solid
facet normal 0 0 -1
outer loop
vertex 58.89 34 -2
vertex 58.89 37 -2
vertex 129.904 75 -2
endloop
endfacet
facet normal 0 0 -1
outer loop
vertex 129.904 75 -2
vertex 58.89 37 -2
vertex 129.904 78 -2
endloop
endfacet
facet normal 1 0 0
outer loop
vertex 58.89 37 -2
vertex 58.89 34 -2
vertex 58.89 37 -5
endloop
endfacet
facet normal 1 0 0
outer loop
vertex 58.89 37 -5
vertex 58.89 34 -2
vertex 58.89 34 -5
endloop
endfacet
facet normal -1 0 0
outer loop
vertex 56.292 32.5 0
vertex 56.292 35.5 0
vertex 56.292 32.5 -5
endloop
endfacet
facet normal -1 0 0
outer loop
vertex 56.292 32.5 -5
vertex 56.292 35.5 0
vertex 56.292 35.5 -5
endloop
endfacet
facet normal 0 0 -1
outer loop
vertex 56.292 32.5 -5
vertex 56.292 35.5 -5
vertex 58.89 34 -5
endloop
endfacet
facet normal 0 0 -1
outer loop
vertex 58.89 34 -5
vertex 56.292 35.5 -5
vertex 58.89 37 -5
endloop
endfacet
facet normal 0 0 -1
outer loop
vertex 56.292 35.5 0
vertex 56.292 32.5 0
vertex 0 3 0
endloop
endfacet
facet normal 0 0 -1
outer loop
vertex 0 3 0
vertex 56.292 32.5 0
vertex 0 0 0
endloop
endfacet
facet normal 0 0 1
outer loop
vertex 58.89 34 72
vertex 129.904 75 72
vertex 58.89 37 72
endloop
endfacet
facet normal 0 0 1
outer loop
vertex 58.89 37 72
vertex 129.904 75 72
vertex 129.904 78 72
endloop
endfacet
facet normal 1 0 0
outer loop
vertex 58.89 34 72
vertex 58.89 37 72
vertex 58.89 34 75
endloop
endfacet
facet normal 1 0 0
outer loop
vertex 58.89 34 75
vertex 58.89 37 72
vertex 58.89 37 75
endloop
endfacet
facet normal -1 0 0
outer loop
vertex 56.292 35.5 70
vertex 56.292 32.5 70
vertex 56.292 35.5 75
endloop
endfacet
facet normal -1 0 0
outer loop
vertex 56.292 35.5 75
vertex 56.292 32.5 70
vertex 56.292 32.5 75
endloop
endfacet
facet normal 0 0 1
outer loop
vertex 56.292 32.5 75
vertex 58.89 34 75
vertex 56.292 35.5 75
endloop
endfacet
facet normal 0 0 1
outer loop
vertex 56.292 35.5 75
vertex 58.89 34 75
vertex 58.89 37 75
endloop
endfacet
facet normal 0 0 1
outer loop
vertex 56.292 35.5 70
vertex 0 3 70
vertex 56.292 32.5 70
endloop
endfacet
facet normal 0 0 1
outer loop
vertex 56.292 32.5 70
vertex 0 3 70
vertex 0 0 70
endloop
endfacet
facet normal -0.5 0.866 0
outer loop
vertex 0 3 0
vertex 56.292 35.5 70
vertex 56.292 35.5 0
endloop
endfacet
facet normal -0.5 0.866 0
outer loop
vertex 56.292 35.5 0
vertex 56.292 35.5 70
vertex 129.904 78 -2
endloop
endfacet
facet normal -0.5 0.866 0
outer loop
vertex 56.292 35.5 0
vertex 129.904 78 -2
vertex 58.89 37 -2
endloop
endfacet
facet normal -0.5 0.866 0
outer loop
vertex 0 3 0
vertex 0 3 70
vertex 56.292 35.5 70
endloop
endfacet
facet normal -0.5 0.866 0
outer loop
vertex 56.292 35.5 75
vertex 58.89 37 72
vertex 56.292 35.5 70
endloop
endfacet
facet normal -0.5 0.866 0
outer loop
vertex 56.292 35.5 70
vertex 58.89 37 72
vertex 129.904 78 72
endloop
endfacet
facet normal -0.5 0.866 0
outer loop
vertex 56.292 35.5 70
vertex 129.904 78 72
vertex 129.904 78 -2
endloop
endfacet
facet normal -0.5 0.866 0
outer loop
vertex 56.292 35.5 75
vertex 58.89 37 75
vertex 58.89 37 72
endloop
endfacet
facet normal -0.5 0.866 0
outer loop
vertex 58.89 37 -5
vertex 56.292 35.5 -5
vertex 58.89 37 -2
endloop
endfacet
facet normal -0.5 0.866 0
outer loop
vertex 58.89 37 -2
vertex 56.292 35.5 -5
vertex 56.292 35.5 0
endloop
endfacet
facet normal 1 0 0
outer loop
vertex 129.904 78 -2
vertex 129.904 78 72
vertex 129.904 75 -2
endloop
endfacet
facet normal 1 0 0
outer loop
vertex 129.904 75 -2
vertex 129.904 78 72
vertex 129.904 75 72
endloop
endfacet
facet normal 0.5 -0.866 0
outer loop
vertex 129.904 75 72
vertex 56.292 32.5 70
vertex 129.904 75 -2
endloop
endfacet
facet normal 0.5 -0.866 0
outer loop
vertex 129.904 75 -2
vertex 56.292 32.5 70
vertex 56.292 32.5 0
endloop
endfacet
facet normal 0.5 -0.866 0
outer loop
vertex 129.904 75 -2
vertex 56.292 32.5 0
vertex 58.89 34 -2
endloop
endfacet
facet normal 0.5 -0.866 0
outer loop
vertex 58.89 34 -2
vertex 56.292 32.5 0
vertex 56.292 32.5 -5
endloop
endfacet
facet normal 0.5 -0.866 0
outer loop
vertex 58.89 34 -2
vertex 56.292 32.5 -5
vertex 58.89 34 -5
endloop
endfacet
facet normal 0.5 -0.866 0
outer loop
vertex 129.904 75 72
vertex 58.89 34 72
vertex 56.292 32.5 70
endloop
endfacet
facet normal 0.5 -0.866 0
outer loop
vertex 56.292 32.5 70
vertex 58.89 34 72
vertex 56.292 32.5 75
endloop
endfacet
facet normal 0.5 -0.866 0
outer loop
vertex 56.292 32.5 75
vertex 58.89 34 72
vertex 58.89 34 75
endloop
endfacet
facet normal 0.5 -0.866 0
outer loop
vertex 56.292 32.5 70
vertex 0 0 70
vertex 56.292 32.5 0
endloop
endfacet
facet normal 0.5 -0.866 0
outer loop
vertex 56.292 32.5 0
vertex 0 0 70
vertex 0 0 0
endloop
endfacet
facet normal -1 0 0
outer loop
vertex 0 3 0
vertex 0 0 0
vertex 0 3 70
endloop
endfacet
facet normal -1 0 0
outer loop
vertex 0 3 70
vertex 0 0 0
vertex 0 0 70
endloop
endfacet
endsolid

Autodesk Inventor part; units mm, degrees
ref_plane "YZ Plane" through (0, 0, 0) normal (1, 0, 0) x (0, 1, 0)
ref_plane "XZ Plane" through (0, 0, 0) normal (0, 1, 0) x (-1, 0, 0)
ref_plane "XY Plane" through (0, 0, 0) normal (0, 0, 1) x (1, 0, 0)
sketch "Sketch6" plane through (0, 0, 0) normal (0, 0, 1) x (1, 0, 0)
  line L0 (0, 0) -> (0, 3)
  line L1 (0, 3) -> (129.9038, 78)
  line L2 (129.9038, 78) -> (129.9038, 75)
  line L3 (129.9038, 75) -> (0, 0)
  dimension "d18" = 3
  dimension "d19" = 150
  dimension "d20" = 120
  dimension "d21" = 3
extrude "Extrusion6" add sketch "Sketch6" along normal blind 70
sketch "Sketch8" plane through (0, 0, 70) normal (0, 0, 1) x (1, 0, 0)
  line L0 (56.2917, 35.5) -> (56.2917, 32.5) projected
  line L1 (129.9038, 78) -> (0, 3) projected
  line L2 (56.2917, 32.5) -> (58.8897, 34)
  line L3 (129.9038, 75) -> (0, 0) projected
  line L4 (58.8897, 34) -> (58.8897, 37)
  line L5 (0, 3) -> (129.9038, 78) projected
  line L6 (56.2917, 35.5) -> (58.8897, 37)
  line L7 (56.2917, 35.5) -> (56.2917, 32.5)
  dimension "d27" = 3
extrude "Extrusion8" add sketch "Sketch8" along normal blind 5
sketch "Sketch9" plane through (0, 0, 70) normal (0, 0, 1) x (1, 0, 0)
  line L0 (58.8897, 37) -> (58.8897, 34) projected
  line L1 (58.8897, 34) -> (129.9038, 75) projected
  line L2 (129.9038, 75) -> (129.9038, 78) projected
  line L3 (129.9038, 78) -> (58.8897, 37) projected
  point P0 (0, 0)
extrude "Extrusion9" add sketch "Sketch9" along normal blind 2
sketch "Sketch10" plane through (0, 0, 0) normal (0, 0, -1) x (-1, 0, 0)
  line L0 (0, 3) -> (-129.9038, 78) projected
  line L1 (-129.9038, 75) -> (0, 0) projected
  line L2 (0, 3) -> (-56.2917, 35.5)
  line L3 (-56.2917, 35.5) -> (-58.8897, 37)
  line L4 (-58.8897, 37) -> (-58.8897, 34)
  line L5 (0, 0) -> (-56.2917, 32.5) projected
  line L6 (-58.8897, 34) -> (-56.2917, 32.5)
  line L7 (-56.2917, 35.5) -> (-56.2917, 32.5) projected
  line L8 (-56.2917, 32.5) -> (-56.2917, 35.5)
  point P0 (-64.9519, 37.5)
  dimension "d32" = 65
  dimension "d33" = 3
extrude "Extrusion10" add sketch "Sketch10" along normal blind 5
sketch "Sketch11" plane through (0, 0, 0) normal (0, 0, -1) x (-1, 0, 0)
  line L0 (-58.8897, 34) -> (-58.8897, 37) projected
  line L1 (0, 3) -> (-129.9038, 78) projected
  line L2 (-129.9038, 78) -> (-129.9038, 75) projected
  line L3 (-129.9038, 75) -> (0, 0) projected
extrude "Extrusion11" add sketch "Sketch11" along normal blind 2
properties part number "Zonnepaneel V5.0 print Versie"
